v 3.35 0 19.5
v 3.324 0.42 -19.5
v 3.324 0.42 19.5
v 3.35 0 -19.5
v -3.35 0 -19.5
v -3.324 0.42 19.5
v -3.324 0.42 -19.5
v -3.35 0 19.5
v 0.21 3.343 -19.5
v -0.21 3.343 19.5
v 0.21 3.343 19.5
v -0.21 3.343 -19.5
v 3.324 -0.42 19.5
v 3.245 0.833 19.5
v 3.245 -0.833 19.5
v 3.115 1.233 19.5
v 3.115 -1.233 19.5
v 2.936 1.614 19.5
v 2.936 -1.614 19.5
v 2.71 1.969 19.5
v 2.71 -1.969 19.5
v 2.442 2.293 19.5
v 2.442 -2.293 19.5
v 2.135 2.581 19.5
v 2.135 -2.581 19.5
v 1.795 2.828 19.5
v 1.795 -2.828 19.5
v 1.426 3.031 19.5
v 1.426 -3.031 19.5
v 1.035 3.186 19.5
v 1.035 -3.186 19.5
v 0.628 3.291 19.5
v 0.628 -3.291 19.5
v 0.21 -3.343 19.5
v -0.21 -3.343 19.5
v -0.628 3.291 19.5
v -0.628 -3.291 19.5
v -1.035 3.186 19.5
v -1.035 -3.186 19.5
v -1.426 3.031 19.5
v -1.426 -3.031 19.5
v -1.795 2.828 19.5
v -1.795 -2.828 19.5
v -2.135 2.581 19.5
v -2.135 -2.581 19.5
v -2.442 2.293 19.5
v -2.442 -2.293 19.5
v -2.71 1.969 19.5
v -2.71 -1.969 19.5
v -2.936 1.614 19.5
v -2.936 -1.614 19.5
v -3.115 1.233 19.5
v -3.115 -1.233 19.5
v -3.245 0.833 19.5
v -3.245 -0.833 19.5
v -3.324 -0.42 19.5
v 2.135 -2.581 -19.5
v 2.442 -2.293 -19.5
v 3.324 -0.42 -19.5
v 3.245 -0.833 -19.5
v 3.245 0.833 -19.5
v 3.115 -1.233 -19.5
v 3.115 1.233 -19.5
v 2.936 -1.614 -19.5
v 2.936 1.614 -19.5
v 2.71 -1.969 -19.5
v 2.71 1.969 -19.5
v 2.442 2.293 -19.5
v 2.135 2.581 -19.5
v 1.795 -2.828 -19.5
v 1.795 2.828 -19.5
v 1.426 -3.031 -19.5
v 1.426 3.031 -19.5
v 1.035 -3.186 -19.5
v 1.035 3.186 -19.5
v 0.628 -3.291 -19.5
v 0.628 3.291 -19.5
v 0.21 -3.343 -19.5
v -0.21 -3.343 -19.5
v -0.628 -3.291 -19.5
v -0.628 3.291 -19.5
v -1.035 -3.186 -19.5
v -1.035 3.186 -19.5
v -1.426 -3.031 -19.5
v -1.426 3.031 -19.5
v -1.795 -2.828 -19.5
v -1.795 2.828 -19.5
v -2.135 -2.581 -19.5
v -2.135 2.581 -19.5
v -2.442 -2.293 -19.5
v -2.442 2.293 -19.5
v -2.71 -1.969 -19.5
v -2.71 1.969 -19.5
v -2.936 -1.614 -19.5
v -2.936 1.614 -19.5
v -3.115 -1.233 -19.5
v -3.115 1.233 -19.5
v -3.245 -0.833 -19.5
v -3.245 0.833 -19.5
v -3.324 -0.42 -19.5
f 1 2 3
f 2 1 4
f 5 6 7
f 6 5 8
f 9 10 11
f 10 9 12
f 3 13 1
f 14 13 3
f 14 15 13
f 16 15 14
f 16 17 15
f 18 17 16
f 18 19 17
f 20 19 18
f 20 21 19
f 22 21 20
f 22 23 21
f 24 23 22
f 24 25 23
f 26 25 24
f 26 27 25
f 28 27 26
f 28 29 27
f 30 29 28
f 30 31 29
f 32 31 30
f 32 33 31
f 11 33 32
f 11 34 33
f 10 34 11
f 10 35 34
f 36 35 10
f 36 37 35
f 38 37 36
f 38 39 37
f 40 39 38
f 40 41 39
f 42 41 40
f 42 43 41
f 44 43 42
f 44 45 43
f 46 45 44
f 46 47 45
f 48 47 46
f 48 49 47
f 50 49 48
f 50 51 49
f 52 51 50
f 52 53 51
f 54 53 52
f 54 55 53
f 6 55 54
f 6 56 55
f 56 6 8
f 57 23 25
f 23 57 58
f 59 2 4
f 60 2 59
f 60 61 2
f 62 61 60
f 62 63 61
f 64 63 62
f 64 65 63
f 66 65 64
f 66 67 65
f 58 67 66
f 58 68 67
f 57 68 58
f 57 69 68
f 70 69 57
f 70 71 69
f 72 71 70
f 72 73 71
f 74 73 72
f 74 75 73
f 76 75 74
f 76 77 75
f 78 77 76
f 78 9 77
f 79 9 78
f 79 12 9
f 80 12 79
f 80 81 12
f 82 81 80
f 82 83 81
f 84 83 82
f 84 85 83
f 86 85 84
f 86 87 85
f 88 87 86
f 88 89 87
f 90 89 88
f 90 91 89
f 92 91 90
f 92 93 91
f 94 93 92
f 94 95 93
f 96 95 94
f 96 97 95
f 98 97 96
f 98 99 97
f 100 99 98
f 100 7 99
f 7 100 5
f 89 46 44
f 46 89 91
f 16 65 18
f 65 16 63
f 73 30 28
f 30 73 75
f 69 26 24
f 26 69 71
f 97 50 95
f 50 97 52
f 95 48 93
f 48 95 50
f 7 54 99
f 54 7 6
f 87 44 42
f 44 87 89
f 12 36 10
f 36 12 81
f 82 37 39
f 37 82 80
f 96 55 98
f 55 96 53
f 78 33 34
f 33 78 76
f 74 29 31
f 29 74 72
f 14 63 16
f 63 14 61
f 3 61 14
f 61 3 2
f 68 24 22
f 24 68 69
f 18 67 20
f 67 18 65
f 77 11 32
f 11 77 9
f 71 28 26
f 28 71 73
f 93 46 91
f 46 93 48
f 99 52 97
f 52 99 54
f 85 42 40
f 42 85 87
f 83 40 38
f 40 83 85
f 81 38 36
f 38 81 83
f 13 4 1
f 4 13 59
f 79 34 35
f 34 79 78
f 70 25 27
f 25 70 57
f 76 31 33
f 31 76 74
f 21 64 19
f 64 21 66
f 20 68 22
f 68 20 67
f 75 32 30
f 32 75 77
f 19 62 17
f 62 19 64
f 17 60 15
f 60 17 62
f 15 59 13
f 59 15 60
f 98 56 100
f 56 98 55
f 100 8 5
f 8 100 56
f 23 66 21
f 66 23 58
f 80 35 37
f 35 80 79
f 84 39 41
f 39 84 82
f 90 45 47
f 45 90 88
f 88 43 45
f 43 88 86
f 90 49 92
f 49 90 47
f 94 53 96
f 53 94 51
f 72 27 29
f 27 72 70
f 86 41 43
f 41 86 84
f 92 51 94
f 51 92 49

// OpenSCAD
$fn = 50;


difference() {
	union() {
		translate(v = [0, 0, -19.5000000000]) {
			cylinder(h = 39, r = 3.3500000000);
		}
	}
	union() {
		translate(v = [0, 0, -100.0000000000]) {
			cylinder(h = 200, r = 0);
		}
	}
}
